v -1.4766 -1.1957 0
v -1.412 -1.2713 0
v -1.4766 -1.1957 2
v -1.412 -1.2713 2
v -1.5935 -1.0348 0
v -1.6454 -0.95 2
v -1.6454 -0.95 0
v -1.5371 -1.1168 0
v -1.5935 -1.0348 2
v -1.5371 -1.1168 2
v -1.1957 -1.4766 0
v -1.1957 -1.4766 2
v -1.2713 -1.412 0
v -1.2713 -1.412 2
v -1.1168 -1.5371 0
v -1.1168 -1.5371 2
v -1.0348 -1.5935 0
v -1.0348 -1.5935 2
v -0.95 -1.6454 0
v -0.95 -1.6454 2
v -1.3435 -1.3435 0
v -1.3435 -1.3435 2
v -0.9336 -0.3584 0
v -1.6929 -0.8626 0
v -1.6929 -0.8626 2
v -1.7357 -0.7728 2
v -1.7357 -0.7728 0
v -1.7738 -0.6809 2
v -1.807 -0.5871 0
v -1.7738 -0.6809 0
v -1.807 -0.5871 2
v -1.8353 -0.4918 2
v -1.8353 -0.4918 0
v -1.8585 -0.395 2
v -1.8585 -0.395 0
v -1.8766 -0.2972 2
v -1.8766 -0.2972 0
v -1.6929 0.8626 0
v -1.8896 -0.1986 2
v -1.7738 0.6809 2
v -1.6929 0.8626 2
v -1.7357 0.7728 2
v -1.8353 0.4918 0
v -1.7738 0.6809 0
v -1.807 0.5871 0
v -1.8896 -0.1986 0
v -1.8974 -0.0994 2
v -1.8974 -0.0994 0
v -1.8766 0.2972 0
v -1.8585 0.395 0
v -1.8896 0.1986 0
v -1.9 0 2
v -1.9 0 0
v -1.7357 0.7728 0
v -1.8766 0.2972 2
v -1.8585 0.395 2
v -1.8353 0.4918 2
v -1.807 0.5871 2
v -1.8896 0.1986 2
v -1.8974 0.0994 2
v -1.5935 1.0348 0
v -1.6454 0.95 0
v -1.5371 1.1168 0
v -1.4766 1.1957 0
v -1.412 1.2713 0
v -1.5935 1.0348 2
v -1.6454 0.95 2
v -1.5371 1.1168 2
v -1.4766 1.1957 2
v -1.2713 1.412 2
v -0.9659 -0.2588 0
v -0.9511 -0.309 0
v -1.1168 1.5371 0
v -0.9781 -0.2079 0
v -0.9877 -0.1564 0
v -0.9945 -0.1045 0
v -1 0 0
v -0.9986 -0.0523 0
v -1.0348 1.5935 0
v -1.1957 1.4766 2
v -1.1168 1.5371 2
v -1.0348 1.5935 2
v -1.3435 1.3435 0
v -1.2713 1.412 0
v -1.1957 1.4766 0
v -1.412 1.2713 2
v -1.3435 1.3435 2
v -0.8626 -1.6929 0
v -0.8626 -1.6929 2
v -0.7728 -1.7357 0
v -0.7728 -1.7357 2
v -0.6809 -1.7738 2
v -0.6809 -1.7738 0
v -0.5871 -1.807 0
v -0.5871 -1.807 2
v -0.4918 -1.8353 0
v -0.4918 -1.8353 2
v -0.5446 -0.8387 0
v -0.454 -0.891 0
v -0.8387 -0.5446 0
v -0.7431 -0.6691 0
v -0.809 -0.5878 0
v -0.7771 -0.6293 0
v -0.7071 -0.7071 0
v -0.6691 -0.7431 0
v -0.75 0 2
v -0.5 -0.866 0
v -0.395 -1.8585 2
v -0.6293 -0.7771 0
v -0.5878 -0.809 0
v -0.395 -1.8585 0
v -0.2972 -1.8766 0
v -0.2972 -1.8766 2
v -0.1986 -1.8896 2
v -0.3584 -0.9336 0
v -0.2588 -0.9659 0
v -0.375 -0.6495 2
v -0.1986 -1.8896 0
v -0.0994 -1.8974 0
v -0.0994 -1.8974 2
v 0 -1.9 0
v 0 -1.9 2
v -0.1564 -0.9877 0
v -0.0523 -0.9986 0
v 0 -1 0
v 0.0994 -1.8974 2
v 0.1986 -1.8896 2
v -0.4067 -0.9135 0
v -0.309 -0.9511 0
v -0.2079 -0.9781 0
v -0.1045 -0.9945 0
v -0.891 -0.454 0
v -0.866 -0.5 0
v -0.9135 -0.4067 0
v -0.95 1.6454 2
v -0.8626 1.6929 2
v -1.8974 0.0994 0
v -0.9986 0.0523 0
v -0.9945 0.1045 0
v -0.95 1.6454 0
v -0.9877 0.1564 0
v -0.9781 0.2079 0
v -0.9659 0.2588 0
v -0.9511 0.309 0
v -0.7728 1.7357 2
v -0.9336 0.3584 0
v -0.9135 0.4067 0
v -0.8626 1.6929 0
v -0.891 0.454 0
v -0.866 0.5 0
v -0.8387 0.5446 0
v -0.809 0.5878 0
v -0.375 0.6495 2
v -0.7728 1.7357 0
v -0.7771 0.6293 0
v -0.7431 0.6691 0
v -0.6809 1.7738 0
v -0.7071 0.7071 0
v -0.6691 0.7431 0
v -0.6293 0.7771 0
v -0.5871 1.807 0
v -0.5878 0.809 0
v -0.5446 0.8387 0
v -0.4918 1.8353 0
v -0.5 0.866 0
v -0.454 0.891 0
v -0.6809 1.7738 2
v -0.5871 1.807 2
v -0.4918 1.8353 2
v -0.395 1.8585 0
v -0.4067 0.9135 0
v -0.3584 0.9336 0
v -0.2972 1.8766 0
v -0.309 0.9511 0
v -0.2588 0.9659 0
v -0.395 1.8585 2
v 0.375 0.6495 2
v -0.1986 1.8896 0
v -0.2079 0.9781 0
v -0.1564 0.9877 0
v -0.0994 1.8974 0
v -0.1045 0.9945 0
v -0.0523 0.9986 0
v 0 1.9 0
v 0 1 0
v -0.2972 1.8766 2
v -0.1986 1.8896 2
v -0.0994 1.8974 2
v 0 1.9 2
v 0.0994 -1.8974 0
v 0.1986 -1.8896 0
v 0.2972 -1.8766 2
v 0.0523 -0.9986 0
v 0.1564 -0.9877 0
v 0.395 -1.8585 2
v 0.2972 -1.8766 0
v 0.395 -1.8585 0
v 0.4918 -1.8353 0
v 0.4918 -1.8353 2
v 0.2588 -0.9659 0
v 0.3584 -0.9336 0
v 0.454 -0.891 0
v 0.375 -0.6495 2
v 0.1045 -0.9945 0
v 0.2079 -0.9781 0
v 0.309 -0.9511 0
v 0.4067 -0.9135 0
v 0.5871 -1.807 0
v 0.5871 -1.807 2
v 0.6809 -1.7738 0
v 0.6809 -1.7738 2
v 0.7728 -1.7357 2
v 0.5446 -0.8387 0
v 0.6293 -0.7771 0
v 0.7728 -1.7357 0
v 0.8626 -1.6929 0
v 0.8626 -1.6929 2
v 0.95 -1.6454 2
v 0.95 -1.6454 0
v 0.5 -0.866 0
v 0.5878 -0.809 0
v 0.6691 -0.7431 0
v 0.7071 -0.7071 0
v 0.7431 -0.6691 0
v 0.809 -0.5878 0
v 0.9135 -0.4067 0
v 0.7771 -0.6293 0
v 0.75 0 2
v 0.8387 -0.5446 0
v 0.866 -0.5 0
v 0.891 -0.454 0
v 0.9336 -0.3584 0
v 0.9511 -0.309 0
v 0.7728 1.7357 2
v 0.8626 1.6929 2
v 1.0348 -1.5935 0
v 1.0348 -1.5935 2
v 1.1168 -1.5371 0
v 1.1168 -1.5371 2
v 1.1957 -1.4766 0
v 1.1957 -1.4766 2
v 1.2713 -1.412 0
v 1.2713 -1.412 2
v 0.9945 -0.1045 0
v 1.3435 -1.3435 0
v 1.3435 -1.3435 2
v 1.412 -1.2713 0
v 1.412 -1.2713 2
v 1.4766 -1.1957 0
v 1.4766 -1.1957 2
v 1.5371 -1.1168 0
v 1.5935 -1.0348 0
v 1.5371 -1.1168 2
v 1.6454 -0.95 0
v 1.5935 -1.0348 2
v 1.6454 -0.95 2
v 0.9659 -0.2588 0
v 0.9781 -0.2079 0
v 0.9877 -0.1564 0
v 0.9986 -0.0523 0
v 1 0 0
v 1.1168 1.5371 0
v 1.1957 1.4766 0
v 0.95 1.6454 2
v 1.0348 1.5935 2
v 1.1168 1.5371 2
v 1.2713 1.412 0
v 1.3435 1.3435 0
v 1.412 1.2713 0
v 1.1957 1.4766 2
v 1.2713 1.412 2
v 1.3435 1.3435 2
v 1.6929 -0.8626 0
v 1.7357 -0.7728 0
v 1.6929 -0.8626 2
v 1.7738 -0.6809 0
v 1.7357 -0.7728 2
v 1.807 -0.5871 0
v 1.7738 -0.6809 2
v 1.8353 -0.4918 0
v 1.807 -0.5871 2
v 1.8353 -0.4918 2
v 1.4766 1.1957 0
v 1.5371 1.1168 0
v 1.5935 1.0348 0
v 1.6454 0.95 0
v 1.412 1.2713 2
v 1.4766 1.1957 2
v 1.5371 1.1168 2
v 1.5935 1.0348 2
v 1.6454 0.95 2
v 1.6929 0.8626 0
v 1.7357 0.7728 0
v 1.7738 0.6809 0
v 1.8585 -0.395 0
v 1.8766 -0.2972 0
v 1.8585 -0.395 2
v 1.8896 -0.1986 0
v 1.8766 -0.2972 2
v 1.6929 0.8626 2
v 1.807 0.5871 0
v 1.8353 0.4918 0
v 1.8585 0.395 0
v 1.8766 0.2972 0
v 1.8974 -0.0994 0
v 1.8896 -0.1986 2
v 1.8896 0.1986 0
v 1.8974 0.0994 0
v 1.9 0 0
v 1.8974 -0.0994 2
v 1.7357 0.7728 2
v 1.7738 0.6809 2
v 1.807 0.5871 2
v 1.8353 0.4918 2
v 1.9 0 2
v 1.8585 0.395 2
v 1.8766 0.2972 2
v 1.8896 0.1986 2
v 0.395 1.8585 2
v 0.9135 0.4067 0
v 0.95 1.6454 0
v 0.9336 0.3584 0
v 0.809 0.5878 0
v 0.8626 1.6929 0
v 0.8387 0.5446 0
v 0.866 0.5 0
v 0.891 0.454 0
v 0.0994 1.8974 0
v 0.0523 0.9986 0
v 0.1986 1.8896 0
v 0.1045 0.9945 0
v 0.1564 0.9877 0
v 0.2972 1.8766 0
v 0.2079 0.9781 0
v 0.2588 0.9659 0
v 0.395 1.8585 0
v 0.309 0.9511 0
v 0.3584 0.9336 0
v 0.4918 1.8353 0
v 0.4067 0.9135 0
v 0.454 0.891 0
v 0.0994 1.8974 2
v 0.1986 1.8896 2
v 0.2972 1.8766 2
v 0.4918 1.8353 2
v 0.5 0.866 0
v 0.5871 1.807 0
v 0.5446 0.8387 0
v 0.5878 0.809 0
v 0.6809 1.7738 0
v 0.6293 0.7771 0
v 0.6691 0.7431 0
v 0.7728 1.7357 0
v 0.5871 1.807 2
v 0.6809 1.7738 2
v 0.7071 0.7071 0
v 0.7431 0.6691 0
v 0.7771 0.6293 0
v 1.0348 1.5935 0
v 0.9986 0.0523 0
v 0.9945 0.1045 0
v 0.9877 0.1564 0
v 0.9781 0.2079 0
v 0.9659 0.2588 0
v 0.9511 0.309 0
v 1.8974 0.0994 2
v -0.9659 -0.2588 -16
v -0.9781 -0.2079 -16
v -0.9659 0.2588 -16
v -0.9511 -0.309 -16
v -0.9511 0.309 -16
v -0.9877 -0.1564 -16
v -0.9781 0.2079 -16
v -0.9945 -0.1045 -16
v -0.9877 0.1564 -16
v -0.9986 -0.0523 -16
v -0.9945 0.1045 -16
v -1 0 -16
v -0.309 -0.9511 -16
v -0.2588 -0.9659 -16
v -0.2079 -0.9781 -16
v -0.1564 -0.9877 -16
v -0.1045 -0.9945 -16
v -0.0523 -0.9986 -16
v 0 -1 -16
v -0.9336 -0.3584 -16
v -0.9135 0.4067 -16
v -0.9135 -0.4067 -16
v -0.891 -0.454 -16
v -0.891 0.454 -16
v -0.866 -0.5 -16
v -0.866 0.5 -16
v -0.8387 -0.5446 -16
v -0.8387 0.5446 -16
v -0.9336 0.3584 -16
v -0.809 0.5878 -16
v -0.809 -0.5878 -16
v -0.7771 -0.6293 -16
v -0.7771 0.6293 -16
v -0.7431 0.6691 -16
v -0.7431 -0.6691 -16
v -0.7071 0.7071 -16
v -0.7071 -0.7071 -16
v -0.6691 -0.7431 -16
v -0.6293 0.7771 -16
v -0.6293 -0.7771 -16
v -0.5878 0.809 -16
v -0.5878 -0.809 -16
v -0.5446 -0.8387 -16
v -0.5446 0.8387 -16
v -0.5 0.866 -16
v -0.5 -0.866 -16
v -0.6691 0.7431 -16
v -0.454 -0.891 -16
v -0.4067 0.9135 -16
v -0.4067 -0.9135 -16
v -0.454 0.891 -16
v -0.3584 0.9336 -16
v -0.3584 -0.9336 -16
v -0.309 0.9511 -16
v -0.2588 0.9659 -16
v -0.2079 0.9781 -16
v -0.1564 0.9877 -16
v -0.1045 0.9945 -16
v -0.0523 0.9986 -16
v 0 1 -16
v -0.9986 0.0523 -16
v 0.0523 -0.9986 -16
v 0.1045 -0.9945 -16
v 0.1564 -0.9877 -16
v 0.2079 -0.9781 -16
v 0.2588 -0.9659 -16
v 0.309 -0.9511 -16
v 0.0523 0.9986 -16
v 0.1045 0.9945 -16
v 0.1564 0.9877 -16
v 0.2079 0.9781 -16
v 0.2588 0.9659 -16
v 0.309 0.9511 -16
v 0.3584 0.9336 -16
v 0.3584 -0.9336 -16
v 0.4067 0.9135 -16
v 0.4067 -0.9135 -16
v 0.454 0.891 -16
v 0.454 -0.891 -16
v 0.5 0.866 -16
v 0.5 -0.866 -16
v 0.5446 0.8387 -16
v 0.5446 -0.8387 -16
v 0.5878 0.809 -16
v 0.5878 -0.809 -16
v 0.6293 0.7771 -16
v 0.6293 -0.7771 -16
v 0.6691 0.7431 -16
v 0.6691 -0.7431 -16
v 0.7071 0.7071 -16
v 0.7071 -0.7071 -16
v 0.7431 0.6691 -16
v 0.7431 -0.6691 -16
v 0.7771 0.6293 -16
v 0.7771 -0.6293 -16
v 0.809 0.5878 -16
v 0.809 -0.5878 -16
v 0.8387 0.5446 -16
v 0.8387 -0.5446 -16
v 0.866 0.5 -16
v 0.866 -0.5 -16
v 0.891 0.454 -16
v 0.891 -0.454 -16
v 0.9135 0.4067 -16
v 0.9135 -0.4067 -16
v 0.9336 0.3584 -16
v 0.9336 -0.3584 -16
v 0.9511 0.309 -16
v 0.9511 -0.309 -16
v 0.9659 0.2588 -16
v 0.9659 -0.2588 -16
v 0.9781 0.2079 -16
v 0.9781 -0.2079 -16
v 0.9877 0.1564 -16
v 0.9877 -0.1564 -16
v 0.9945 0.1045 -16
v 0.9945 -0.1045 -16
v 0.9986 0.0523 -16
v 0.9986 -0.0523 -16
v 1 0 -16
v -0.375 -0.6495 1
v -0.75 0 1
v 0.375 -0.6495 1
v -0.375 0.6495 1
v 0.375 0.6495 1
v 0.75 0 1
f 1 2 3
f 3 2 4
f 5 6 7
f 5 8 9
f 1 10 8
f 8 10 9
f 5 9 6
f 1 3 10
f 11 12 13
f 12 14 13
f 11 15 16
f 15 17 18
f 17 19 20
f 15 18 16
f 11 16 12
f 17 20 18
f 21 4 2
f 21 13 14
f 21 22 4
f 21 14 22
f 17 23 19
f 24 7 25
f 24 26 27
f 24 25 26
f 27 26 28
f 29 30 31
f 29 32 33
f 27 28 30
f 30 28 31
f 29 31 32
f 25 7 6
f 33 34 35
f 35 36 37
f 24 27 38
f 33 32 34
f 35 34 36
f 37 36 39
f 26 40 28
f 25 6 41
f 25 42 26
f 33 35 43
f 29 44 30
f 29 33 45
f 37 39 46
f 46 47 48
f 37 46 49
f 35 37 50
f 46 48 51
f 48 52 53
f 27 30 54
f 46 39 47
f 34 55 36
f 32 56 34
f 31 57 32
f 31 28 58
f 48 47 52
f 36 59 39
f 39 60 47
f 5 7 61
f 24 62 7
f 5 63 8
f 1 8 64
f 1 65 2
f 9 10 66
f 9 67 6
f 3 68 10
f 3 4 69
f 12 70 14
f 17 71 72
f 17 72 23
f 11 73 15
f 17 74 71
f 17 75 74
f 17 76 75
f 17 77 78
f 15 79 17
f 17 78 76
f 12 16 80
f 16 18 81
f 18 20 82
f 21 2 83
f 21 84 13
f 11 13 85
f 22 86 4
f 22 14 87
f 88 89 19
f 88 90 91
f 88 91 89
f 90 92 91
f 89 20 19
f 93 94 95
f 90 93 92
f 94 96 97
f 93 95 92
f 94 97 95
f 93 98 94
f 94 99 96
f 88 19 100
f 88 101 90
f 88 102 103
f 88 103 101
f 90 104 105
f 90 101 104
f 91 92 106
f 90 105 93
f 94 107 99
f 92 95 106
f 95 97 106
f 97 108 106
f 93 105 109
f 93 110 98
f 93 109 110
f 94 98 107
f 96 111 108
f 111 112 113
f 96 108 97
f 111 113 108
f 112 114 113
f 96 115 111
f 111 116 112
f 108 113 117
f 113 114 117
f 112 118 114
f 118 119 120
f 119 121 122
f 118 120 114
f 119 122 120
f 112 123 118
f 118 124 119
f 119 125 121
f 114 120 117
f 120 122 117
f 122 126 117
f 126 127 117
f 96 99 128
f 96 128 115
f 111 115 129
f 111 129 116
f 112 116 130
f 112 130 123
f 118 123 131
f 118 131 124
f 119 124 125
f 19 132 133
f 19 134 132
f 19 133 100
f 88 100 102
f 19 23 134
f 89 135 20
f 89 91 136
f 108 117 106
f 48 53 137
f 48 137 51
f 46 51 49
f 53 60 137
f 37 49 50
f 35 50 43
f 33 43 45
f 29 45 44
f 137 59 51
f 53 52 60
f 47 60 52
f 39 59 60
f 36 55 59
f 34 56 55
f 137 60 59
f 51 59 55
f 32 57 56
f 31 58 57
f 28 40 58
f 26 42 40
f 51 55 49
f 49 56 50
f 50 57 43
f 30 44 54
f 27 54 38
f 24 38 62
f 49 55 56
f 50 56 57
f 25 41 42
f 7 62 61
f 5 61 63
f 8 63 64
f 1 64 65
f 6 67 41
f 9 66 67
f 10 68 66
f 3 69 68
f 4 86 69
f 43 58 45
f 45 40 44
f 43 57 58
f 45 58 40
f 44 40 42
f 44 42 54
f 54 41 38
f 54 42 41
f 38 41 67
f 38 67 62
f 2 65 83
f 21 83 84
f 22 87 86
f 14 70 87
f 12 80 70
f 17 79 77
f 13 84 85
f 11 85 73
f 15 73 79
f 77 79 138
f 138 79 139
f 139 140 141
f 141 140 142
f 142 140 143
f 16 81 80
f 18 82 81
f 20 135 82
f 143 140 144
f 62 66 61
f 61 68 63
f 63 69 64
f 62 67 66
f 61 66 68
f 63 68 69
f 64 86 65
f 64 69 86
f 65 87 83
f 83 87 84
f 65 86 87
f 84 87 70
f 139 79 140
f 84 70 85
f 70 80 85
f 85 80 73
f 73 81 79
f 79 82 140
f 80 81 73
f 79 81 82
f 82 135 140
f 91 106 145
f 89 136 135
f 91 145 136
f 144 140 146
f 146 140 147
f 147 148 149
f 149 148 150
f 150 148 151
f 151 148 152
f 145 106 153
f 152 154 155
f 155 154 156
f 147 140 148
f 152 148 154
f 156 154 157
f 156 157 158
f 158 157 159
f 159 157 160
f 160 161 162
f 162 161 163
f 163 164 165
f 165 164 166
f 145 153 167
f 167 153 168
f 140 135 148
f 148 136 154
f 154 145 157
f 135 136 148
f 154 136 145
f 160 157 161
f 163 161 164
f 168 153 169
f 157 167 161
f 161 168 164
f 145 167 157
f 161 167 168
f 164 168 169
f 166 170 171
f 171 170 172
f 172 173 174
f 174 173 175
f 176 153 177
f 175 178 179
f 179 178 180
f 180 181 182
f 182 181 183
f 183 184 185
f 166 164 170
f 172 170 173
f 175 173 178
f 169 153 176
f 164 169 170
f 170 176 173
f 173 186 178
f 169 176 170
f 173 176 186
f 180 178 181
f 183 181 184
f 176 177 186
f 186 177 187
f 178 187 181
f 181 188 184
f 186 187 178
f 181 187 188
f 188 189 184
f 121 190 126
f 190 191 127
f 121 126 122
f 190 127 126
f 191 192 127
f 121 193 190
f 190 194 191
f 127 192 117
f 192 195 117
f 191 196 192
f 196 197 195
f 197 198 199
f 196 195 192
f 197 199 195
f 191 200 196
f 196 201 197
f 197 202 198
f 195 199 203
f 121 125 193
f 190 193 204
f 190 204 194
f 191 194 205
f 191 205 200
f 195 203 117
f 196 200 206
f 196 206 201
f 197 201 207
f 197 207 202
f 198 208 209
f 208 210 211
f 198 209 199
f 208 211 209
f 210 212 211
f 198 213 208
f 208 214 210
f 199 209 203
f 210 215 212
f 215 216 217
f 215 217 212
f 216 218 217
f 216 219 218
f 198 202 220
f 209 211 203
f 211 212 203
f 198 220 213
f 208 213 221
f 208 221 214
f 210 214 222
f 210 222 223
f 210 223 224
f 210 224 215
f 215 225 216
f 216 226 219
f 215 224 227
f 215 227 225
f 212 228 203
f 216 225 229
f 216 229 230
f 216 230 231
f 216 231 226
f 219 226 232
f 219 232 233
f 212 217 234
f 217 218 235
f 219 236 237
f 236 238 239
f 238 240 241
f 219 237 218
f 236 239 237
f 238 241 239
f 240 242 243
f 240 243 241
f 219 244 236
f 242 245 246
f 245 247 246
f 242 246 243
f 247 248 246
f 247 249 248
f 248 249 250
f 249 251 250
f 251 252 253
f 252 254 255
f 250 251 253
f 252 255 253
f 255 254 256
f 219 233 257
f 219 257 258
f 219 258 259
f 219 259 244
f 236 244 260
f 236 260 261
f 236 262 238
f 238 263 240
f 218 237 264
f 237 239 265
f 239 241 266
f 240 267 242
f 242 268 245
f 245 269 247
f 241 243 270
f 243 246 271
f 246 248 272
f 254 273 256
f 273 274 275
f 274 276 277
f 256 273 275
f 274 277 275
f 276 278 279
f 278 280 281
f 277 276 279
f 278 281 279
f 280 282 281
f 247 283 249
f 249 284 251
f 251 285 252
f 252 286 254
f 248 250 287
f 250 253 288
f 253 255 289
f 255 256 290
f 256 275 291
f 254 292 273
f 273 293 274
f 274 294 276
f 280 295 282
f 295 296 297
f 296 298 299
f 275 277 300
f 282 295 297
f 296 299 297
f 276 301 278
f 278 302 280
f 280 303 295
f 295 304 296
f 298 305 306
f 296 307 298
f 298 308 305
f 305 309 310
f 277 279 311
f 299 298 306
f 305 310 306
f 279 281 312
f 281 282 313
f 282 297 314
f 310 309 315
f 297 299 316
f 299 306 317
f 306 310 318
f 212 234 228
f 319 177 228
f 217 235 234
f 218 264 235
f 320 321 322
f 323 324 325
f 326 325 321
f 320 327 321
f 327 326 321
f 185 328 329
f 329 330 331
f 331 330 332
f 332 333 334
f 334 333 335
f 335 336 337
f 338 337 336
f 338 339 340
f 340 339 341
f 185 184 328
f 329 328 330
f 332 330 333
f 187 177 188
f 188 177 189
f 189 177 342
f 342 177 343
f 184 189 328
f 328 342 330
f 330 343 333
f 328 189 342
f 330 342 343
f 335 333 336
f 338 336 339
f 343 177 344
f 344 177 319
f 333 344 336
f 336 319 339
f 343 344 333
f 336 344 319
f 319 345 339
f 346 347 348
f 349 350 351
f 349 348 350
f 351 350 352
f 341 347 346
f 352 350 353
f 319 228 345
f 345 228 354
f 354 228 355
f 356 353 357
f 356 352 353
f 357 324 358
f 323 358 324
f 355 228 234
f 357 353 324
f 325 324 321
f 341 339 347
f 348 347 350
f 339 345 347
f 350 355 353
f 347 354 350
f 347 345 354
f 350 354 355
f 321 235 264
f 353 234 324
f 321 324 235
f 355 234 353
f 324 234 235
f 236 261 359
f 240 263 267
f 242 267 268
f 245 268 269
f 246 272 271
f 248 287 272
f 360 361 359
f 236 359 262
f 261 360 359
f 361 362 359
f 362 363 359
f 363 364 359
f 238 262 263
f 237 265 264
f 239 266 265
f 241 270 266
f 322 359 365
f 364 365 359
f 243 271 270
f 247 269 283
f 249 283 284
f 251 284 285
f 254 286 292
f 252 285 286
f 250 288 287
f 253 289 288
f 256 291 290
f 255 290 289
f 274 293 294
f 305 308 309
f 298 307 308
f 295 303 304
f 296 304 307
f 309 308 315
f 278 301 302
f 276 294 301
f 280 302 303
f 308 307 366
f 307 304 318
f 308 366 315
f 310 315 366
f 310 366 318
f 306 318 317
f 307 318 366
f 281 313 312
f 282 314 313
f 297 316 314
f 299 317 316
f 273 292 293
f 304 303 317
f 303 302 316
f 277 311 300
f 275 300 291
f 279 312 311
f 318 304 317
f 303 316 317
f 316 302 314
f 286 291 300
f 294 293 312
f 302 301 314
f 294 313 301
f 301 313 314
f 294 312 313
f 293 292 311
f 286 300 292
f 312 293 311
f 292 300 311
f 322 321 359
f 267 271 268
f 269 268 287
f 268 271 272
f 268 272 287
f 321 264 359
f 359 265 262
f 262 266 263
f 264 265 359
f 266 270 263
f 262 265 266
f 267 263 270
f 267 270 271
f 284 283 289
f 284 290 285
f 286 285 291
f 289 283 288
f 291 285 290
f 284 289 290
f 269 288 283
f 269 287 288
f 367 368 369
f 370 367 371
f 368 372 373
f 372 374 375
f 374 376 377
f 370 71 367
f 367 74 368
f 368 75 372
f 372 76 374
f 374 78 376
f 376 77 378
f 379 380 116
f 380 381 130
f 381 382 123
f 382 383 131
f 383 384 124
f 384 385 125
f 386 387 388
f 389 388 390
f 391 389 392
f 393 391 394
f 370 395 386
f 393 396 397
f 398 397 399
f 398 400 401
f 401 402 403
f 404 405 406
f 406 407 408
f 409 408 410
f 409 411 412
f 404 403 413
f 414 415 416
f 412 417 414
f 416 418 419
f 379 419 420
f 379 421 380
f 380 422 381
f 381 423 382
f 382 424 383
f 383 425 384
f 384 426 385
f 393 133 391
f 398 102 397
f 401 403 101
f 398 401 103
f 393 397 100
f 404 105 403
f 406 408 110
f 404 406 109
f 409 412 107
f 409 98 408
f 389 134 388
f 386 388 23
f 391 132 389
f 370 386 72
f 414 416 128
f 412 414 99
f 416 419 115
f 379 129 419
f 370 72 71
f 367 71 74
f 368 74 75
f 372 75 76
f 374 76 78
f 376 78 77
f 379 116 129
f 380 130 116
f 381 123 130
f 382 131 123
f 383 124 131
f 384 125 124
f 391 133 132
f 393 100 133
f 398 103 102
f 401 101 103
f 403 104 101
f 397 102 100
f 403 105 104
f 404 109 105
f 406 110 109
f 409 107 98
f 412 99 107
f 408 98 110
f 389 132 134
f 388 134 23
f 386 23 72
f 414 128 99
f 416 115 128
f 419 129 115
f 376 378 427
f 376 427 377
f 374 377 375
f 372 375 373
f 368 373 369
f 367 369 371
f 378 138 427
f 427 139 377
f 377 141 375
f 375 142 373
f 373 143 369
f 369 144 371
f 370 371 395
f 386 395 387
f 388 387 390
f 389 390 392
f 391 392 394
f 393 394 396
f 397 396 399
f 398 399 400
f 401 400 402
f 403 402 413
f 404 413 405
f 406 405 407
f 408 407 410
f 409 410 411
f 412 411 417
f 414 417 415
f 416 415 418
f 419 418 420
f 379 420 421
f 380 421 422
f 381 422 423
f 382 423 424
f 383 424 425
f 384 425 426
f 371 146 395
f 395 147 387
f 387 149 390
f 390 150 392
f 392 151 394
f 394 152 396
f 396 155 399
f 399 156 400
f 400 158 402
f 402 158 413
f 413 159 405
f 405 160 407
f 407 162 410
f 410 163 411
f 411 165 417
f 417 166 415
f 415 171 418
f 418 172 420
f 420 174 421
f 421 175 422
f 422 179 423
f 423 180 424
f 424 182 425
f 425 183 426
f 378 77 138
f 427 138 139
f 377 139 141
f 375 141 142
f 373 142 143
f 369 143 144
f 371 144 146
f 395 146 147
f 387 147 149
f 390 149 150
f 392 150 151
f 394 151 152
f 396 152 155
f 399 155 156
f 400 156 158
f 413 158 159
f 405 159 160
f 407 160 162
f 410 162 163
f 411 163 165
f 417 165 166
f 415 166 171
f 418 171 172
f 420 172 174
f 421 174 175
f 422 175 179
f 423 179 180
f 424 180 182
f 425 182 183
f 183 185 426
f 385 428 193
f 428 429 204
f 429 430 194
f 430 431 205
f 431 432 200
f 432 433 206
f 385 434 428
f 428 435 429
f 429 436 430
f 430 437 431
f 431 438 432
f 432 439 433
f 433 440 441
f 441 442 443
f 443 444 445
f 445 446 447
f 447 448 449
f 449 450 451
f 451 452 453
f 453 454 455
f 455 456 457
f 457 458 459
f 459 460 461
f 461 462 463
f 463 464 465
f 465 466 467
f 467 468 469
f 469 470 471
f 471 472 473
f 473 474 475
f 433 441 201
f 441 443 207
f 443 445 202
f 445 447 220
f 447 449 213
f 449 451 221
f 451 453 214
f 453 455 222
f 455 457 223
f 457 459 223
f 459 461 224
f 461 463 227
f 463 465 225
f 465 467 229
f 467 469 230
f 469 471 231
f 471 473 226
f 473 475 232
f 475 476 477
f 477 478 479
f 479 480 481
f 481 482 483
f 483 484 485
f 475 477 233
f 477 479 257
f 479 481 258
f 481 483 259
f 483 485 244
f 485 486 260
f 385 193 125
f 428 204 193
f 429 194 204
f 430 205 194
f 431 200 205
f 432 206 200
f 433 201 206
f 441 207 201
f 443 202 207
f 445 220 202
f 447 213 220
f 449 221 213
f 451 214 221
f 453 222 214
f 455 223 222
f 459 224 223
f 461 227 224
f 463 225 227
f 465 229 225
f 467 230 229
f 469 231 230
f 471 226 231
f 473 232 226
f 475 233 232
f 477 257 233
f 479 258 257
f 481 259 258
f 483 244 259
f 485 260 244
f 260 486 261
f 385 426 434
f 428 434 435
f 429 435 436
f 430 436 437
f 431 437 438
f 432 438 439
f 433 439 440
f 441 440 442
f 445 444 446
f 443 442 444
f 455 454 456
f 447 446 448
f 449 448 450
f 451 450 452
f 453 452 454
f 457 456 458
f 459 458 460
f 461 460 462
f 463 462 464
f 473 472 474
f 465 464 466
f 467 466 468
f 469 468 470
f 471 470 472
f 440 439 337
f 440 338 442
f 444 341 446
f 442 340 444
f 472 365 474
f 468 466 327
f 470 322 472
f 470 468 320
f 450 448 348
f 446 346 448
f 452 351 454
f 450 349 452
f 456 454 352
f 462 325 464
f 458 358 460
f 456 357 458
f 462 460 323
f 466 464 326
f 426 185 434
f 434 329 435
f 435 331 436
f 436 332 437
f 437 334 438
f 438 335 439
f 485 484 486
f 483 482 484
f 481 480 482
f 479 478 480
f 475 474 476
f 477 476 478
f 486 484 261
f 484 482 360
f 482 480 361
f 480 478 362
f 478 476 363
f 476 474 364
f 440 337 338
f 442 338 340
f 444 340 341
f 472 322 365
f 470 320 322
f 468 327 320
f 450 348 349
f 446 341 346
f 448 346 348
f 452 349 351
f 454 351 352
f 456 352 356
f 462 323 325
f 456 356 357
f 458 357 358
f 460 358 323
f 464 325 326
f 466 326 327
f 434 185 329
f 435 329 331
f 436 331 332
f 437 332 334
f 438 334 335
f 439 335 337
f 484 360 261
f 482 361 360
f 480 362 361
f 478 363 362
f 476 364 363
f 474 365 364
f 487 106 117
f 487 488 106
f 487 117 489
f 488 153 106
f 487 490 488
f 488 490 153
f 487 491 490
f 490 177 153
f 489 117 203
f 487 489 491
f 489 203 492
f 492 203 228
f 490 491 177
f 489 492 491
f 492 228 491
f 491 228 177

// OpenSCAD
// file: C:/od/OneDrive/Documents/ChatGPT/oomlout_oobb_part_motor_gearbox_wave_drive_version_5/parts/oobb_part_motor_gearbox_wave_drive_version_5_12_to_1_reduction/compact_helpers.scad
// Reusable native geometry helpers.
function polar(r,a)=[r*cos(a),r*sin(a)];
function rotate_point(p,a)=[p[0]*cos(a)-p[1]*sin(a),p[0]*sin(a)+p[1]*cos(a)];
function profile_point(t)=let(
    s=sqrt(pow(pitch_radius,2)-pow(eccentricity*sin(cavity_count*t),2)),
    r=eccentricity*cos(cavity_count*t)+s,
    xi=atan2(eccentricity*cavity_count*sin(cavity_count*t),s),
    rr=roller_radius+profile_clearance)
    [r*cos(t)+rr*cos(t+xi),r*sin(t)+rr*sin(t+xi)];
function profile_points(upper=false)=[for(i=[0:cavity_count*profile_samples_per_cavity-1])
    rotate_point(profile_point(360*i/(cavity_count*profile_samples_per_cavity)),0)];
function roller_position(i,a,upper=false)=let(
    t=-a/roller_count+360*i/roller_count,
    rel=t-a-(upper?180:0),
    r=eccentricity*cos(rel)+sqrt(pow(pitch_radius,2)-pow(eccentricity*sin(rel),2))) polar(r,t);
module tube(ro,ri,h) { difference() { cylinder(r=ro,h=h); translate([0,0,-eps]) cylinder(r=ri,h=h+2*eps); } }
module screw_hole(size,h) { scale([1,1,h]) { if(size=="m2") oobb_hole_m2(); if(size=="m3") oobb_hole_m3(); if(size=="m6") oobb_hole_m6(); } }
module socket_recess(size,depth) {
    // OOBB socket head starts at the under-head plane and extends outward.
    scale([1,1,depth/(size=="m3"?3.2:2.2)]) {
        if(size=="m3") oobb_socket_m3(); else oobb_socket_m2();
    }
}
module at_mounts(points) { for(p=points) translate([p[0],p[1],0]) children(); }
module shaft_cut(h,fit=shaft_fit_clearance) {
    linear_extrude(h) intersection() {
        circle(r=input_shaft_diameter/2+fit);
        translate([-10,-10]) square([10+input_shaft_diameter/2-input_shaft_flat_depth+fit,20]);
    }
}
module rounded_rectangle_plate(size=[119,119,3],radius=1.5) {
    hull() for(x=[-1,1],y=[-1,1]) translate([x*(size[0]/2-radius),y*(size[1]/2-radius),0]) cylinder(r=radius,h=size[2]);
}
module grid_cuts(h) {
    // Actual OOBB grid centres: six units are centred on half-pitch offsets.
    for(i=[0:base_width-1],j=[0:base_height-1])
        let(x=(i-(base_width-1)/2)*oobb_grid_pitch,y=(j-(base_height-1)/2)*oobb_grid_pitch)
        if(sqrt(x*x+y*y)>housing_radius+3.5)
            translate([x,y,-eps]) screw_hole("m6",h+2*eps);
}
module wave_generator() {
    render(convexity=20) difference() {
        tube(wave_radius,12.6,wave_height);
        translate([0,0,wave_seat_z]) cylinder(r=13.5+bearing_seat_clearance,h=wave_height);
        translate([0,0,wave_height-wave_cap_depth]) cylinder(r=22.15,h=wave_cap_depth+eps);
        at_mounts(wave_mounts) {
            translate([0,0,-eps]) screw_hole("m3",wave_height+2*eps);
            translate([0,0,wave_nut_z]) scale([1,1,(wave_height-wave_cap_depth-wave_nut_z+eps)/2.7]) oobb_nut_m3();
        }
    }
}
module wave_cap() {
    render(convexity=20) difference() {
        tube(22,12.6,wave_cap_depth);
        at_mounts(wave_mounts) {
            translate([0,0,-eps]) screw_hole("m3",wave_cap_depth+2*eps);
            translate([0,0,wave_cap_depth-wave_head_recess]) socket_recess("m3",wave_head_recess+eps);
        }
    }
}
// file: C:/od/OneDrive/Documents/ChatGPT/oomlout_oobb_part_motor_gearbox_wave_drive_version_5/parts/oobb_part_motor_gearbox_wave_drive_version_5_12_to_1_reduction/oobb_hardware.scad
module oobb_rounded_rectangle_edges(size, radius, radius_top, radius_bottom) {
      rt=radius_top; rb=radius_bottom; depth=size[2]; n=16;
      lower=rb==0 ? [[radius,0]] :
        [for(i=[0:n]) let(a=-90+90*i/n) [radius-rb+rb*cos(a),rb+rb*sin(a)]];
      upper=rt==0 ? [[radius,depth]] :
        [for(i=[0:n]) let(a=90*i/n) [radius-rt+rt*cos(a),depth-rt+rt*sin(a)]];
      hull() for(x=[-size[0]/2+radius,size[0]/2-radius])
        for(y=[-size[1]/2+radius,size[1]/2-radius])
          translate([x,y,0]) rotate_extrude()
            polygon(concat([[0,0]],lower,upper,[[0,depth]]));
    }
// Generated from installed OOBB v5. All primitives use overhang=True.

module oobb_motor_plate_body() {


difference() {
	union() {
		translate(v = [0, 0, 0]) {
			rotate(a = [0, 0, 0]) {
				difference() {
					union() {
						oobb_rounded_rectangle_edges(radius = 1.5, radius_bottom = 1.5, radius_top = 1.5, size = [89.0, 89.0, 4.0]);
					}
					union();
				}
			}
		}
	}
	union();
}

}

module oobb_hole_m2() {


difference() {
	union() {
		cylinder(h = 1, r = 1.35);
	}
	union();
}

}

module oobb_hole_m3() {


difference() {
	union() {
		cylinder(h = 1, r = 1.8);
	}
	union();
}

}

module oobb_hole_m6() {


difference() {
	union() {
		cylinder(h = 1, r = 3.25);
	}
	union();
}

}

module oobb_nut_m2() {


difference() {
	union() {
		translate(v = [0, 0, 0]) {
			rotate(a = [0, 0, 0]) {
				difference() {
					union() {
						linear_extrude(height = 2.2) {
							polygon(points = [[2.4234, 0.0], [1.2117000000000002, 2.0987259635312085], [-1.2116999999999996, 2.0987259635312085], [-2.4234, 2.967809053053696e-16], [-1.211700000000001, -2.098725963531208], [1.2116999999999984, -2.0987259635312094]]);
						}
						translate(v = [-1.25, -2.75, -0.3]) {
							cube(size = [2.5, 5.5, 0.3]);
						}
						translate(v = [-1.25, -1.25, -0.6]) {
							cube(size = [2.5, 2.5, 0.3]);
						}
						translate(v = [-1.25, -2.75, 2.2]) {
							cube(size = [2.5, 5.5, 0.3]);
						}
						translate(v = [-1.25, -1.25, 2.5]) {
							cube(size = [2.5, 2.5, 0.3]);
						}
					}
					union();
				}
			}
		}
	}
	union();
}

}

module oobb_socket_m2() {


difference() {
	union() {
		translate(v = [0, 0, 0]) {
			rotate(a = [0, 0, 0]) {
				difference() {
					union() {
						cylinder(h = 2.2, r = 2.1);
						translate(v = [-1.25, -2.75, -0.3]) {
							cube(size = [2.5, 5.5, 0.3]);
						}
						translate(v = [-1.25, -1.25, -0.6]) {
							cube(size = [2.5, 2.5, 0.3]);
						}
					}
					union();
				}
			}
		}
	}
	union();
}

}

module oobb_nut_m3() {


difference() {
	union() {
		translate(v = [0, 0, 0]) {
			rotate(a = [0, 0, 0]) {
				difference() {
					union() {
						linear_extrude(height = 2.7) {
							polygon(points = [[3.4619999999999997, 0.0], [1.7310000000000003, 2.9981799479017264], [-1.7309999999999992, 2.9981799479017264], [-3.4619999999999997, 4.2397272186481365e-16], [-1.7310000000000014, -2.998179947901726], [1.7309999999999977, -2.9981799479017277]]);
						}
						translate(v = [-1.75, -3.25, -0.3]) {
							cube(size = [3.5, 6.5, 0.3]);
						}
						translate(v = [-1.75, -1.75, -0.6]) {
							cube(size = [3.5, 3.5, 0.3]);
						}
						translate(v = [-1.75, -3.25, 2.7]) {
							cube(size = [3.5, 6.5, 0.3]);
						}
						translate(v = [-1.75, -1.75, 3.0]) {
							cube(size = [3.5, 3.5, 0.3]);
						}
					}
					union();
				}
			}
		}
	}
	union();
}

}

module oobb_socket_m3() {


difference() {
	union() {
		translate(v = [0, 0, 0]) {
			rotate(a = [0, 0, 0]) {
				difference() {
					union() {
						cylinder(h = 3.2, r = 3.0);
						translate(v = [-1.75, -3.25, -0.3]) {
							cube(size = [3.5, 6.5, 0.3]);
						}
						translate(v = [-1.75, -1.75, -0.6]) {
							cube(size = [3.5, 3.5, 0.3]);
						}
					}
					union();
				}
			}
		}
	}
	union();
}

}

module oobb_nut_m6() {


difference() {
	union() {
		translate(v = [0, 0, 0]) {
			rotate(a = [0, 0, 0]) {
				difference() {
					union() {
						linear_extrude(height = 5.2) {
							polygon(points = [[5.914249999999999, 0.0], [2.957125, 5.1218907443321156], [-2.9571249999999982, 5.1218907443321156], [-5.914249999999999, 7.242867331857232e-16], [-2.9571250000000022, -5.121890744332115], [2.9571249999999956, -5.121890744332118]]);
						}
						translate(v = [-2.875, -5.0, -0.3]) {
							cube(size = [5.75, 10, 0.3]);
						}
						translate(v = [-2.875, -2.875, -0.6]) {
							cube(size = [5.75, 5.75, 0.3]);
						}
						translate(v = [-2.875, -5.0, 5.2]) {
							cube(size = [5.75, 10, 0.3]);
						}
						translate(v = [-2.875, -2.875, 5.5]) {
							cube(size = [5.75, 5.75, 0.3]);
						}
					}
					union();
				}
			}
		}
	}
	union();
}

}
// file: C:/od/OneDrive/Documents/ChatGPT/oomlout_oobb_part_motor_gearbox_wave_drive_version_5/parts/oobb_part_motor_gearbox_wave_drive_version_5_12_to_1_reduction/parameters.scad
// Generated by working_scad.py. Edit the Python recipe to persist changes.
style = "version_5";
reduction = 12;
bearing_output = "6810";
bearing_wave = "6704";
roller_diameter = 7.0;
roller_bore_diameter = 3.2;
roller_length = 12.0;
roller_material = "nylon";
roller_bank_count = 1;
motor_plate_depth = 4.0;
motor_body_depth = 40.0;
motor_shaft_length = 24.0;
motor_hole_pitch = 31.0;
motor_thread_depth = 6.0;
motor_pilot_diameter = 22.0;
motor_pilot_height = 2.0;
output_holder_wall = 7.0;
max_screw_length = 35.0;
eccentricity = 0.75;
wave_radius = 23.25;
profile_clearance = 0.15;
roller_slot_clearance = 0.3;
roller_end_clearance = 0.3;
cage_wall = 4.0;
cage_plate_depth = 3.0;
bearing_seat_clearance = 0.1;
journal_clearance = 0.05;
bearing_axial_clearance = 0.2;
output_plate_diameter = 65.0;
output_plate_depth = 6.0;
output_grid_pitch = 15.0;
output_face_clearance = 0.3;
output_socket_recess = 4.0;
output_screw_length = 16;
output_nut_depth = 5.2;
output_nut_height = 5.0;
motor_shaft_end_clearance = 0.5;
base_width = 6;
base_height = 6;
oobb_grid_pitch = 15.0;
oobb_size_allowance = 1.0;
base_edge_radius = 1.5;
housing_flange_corner_radius = 1.5;
housing_screw_pitch_radius = 35.5;
housing_screw_count = 6;
input_shaft_diameter = 5.0;
input_shaft_flat_depth = 0.5;
shaft_fit_clearance = 0.1;
cage_screw_count = 4;
profile_samples_per_cavity = 100;
circle_fragments = 120;
overhang = true;
run_scad = true;
run_solidcraft = false;
generate_stl = true;
generate_previews = true;
generate_renders = true;
validate_geometry = true;
package_outputs = true;
render_threads = 8;
variant = "default";
// main file
include <C:/od/OneDrive/Documents/ChatGPT/oomlout_oobb_part_motor_gearbox_wave_drive_version_5/parts/oobb_part_motor_gearbox_wave_drive_version_5_12_to_1_reduction/parameters.scad>
include <C:/od/OneDrive/Documents/ChatGPT/oomlout_oobb_part_motor_gearbox_wave_drive_version_5/parts/oobb_part_motor_gearbox_wave_drive_version_5_12_to_1_reduction/oobb_hardware.scad>
include <C:/od/OneDrive/Documents/ChatGPT/oomlout_oobb_part_motor_gearbox_wave_drive_version_5/parts/oobb_part_motor_gearbox_wave_drive_version_5_12_to_1_reduction/geometry.scad>
difference() { difference() {
	union() {
		translate(v = [0, 0, 0]) {
			rotate(a = [0, 0, 0]) {
				difference() {
					union() {
						cylinder(h = 2.0, r = 1.9);
						translate(v = [0, 0, -16.0]) {
							cylinder(h = 16, r = 1.0);
						}
					}
					union();
				}
			}
		}
	}
	union();
}
 translate([0,0,1]) cylinder(r=0.75,h=1.01,$fn=6); }
